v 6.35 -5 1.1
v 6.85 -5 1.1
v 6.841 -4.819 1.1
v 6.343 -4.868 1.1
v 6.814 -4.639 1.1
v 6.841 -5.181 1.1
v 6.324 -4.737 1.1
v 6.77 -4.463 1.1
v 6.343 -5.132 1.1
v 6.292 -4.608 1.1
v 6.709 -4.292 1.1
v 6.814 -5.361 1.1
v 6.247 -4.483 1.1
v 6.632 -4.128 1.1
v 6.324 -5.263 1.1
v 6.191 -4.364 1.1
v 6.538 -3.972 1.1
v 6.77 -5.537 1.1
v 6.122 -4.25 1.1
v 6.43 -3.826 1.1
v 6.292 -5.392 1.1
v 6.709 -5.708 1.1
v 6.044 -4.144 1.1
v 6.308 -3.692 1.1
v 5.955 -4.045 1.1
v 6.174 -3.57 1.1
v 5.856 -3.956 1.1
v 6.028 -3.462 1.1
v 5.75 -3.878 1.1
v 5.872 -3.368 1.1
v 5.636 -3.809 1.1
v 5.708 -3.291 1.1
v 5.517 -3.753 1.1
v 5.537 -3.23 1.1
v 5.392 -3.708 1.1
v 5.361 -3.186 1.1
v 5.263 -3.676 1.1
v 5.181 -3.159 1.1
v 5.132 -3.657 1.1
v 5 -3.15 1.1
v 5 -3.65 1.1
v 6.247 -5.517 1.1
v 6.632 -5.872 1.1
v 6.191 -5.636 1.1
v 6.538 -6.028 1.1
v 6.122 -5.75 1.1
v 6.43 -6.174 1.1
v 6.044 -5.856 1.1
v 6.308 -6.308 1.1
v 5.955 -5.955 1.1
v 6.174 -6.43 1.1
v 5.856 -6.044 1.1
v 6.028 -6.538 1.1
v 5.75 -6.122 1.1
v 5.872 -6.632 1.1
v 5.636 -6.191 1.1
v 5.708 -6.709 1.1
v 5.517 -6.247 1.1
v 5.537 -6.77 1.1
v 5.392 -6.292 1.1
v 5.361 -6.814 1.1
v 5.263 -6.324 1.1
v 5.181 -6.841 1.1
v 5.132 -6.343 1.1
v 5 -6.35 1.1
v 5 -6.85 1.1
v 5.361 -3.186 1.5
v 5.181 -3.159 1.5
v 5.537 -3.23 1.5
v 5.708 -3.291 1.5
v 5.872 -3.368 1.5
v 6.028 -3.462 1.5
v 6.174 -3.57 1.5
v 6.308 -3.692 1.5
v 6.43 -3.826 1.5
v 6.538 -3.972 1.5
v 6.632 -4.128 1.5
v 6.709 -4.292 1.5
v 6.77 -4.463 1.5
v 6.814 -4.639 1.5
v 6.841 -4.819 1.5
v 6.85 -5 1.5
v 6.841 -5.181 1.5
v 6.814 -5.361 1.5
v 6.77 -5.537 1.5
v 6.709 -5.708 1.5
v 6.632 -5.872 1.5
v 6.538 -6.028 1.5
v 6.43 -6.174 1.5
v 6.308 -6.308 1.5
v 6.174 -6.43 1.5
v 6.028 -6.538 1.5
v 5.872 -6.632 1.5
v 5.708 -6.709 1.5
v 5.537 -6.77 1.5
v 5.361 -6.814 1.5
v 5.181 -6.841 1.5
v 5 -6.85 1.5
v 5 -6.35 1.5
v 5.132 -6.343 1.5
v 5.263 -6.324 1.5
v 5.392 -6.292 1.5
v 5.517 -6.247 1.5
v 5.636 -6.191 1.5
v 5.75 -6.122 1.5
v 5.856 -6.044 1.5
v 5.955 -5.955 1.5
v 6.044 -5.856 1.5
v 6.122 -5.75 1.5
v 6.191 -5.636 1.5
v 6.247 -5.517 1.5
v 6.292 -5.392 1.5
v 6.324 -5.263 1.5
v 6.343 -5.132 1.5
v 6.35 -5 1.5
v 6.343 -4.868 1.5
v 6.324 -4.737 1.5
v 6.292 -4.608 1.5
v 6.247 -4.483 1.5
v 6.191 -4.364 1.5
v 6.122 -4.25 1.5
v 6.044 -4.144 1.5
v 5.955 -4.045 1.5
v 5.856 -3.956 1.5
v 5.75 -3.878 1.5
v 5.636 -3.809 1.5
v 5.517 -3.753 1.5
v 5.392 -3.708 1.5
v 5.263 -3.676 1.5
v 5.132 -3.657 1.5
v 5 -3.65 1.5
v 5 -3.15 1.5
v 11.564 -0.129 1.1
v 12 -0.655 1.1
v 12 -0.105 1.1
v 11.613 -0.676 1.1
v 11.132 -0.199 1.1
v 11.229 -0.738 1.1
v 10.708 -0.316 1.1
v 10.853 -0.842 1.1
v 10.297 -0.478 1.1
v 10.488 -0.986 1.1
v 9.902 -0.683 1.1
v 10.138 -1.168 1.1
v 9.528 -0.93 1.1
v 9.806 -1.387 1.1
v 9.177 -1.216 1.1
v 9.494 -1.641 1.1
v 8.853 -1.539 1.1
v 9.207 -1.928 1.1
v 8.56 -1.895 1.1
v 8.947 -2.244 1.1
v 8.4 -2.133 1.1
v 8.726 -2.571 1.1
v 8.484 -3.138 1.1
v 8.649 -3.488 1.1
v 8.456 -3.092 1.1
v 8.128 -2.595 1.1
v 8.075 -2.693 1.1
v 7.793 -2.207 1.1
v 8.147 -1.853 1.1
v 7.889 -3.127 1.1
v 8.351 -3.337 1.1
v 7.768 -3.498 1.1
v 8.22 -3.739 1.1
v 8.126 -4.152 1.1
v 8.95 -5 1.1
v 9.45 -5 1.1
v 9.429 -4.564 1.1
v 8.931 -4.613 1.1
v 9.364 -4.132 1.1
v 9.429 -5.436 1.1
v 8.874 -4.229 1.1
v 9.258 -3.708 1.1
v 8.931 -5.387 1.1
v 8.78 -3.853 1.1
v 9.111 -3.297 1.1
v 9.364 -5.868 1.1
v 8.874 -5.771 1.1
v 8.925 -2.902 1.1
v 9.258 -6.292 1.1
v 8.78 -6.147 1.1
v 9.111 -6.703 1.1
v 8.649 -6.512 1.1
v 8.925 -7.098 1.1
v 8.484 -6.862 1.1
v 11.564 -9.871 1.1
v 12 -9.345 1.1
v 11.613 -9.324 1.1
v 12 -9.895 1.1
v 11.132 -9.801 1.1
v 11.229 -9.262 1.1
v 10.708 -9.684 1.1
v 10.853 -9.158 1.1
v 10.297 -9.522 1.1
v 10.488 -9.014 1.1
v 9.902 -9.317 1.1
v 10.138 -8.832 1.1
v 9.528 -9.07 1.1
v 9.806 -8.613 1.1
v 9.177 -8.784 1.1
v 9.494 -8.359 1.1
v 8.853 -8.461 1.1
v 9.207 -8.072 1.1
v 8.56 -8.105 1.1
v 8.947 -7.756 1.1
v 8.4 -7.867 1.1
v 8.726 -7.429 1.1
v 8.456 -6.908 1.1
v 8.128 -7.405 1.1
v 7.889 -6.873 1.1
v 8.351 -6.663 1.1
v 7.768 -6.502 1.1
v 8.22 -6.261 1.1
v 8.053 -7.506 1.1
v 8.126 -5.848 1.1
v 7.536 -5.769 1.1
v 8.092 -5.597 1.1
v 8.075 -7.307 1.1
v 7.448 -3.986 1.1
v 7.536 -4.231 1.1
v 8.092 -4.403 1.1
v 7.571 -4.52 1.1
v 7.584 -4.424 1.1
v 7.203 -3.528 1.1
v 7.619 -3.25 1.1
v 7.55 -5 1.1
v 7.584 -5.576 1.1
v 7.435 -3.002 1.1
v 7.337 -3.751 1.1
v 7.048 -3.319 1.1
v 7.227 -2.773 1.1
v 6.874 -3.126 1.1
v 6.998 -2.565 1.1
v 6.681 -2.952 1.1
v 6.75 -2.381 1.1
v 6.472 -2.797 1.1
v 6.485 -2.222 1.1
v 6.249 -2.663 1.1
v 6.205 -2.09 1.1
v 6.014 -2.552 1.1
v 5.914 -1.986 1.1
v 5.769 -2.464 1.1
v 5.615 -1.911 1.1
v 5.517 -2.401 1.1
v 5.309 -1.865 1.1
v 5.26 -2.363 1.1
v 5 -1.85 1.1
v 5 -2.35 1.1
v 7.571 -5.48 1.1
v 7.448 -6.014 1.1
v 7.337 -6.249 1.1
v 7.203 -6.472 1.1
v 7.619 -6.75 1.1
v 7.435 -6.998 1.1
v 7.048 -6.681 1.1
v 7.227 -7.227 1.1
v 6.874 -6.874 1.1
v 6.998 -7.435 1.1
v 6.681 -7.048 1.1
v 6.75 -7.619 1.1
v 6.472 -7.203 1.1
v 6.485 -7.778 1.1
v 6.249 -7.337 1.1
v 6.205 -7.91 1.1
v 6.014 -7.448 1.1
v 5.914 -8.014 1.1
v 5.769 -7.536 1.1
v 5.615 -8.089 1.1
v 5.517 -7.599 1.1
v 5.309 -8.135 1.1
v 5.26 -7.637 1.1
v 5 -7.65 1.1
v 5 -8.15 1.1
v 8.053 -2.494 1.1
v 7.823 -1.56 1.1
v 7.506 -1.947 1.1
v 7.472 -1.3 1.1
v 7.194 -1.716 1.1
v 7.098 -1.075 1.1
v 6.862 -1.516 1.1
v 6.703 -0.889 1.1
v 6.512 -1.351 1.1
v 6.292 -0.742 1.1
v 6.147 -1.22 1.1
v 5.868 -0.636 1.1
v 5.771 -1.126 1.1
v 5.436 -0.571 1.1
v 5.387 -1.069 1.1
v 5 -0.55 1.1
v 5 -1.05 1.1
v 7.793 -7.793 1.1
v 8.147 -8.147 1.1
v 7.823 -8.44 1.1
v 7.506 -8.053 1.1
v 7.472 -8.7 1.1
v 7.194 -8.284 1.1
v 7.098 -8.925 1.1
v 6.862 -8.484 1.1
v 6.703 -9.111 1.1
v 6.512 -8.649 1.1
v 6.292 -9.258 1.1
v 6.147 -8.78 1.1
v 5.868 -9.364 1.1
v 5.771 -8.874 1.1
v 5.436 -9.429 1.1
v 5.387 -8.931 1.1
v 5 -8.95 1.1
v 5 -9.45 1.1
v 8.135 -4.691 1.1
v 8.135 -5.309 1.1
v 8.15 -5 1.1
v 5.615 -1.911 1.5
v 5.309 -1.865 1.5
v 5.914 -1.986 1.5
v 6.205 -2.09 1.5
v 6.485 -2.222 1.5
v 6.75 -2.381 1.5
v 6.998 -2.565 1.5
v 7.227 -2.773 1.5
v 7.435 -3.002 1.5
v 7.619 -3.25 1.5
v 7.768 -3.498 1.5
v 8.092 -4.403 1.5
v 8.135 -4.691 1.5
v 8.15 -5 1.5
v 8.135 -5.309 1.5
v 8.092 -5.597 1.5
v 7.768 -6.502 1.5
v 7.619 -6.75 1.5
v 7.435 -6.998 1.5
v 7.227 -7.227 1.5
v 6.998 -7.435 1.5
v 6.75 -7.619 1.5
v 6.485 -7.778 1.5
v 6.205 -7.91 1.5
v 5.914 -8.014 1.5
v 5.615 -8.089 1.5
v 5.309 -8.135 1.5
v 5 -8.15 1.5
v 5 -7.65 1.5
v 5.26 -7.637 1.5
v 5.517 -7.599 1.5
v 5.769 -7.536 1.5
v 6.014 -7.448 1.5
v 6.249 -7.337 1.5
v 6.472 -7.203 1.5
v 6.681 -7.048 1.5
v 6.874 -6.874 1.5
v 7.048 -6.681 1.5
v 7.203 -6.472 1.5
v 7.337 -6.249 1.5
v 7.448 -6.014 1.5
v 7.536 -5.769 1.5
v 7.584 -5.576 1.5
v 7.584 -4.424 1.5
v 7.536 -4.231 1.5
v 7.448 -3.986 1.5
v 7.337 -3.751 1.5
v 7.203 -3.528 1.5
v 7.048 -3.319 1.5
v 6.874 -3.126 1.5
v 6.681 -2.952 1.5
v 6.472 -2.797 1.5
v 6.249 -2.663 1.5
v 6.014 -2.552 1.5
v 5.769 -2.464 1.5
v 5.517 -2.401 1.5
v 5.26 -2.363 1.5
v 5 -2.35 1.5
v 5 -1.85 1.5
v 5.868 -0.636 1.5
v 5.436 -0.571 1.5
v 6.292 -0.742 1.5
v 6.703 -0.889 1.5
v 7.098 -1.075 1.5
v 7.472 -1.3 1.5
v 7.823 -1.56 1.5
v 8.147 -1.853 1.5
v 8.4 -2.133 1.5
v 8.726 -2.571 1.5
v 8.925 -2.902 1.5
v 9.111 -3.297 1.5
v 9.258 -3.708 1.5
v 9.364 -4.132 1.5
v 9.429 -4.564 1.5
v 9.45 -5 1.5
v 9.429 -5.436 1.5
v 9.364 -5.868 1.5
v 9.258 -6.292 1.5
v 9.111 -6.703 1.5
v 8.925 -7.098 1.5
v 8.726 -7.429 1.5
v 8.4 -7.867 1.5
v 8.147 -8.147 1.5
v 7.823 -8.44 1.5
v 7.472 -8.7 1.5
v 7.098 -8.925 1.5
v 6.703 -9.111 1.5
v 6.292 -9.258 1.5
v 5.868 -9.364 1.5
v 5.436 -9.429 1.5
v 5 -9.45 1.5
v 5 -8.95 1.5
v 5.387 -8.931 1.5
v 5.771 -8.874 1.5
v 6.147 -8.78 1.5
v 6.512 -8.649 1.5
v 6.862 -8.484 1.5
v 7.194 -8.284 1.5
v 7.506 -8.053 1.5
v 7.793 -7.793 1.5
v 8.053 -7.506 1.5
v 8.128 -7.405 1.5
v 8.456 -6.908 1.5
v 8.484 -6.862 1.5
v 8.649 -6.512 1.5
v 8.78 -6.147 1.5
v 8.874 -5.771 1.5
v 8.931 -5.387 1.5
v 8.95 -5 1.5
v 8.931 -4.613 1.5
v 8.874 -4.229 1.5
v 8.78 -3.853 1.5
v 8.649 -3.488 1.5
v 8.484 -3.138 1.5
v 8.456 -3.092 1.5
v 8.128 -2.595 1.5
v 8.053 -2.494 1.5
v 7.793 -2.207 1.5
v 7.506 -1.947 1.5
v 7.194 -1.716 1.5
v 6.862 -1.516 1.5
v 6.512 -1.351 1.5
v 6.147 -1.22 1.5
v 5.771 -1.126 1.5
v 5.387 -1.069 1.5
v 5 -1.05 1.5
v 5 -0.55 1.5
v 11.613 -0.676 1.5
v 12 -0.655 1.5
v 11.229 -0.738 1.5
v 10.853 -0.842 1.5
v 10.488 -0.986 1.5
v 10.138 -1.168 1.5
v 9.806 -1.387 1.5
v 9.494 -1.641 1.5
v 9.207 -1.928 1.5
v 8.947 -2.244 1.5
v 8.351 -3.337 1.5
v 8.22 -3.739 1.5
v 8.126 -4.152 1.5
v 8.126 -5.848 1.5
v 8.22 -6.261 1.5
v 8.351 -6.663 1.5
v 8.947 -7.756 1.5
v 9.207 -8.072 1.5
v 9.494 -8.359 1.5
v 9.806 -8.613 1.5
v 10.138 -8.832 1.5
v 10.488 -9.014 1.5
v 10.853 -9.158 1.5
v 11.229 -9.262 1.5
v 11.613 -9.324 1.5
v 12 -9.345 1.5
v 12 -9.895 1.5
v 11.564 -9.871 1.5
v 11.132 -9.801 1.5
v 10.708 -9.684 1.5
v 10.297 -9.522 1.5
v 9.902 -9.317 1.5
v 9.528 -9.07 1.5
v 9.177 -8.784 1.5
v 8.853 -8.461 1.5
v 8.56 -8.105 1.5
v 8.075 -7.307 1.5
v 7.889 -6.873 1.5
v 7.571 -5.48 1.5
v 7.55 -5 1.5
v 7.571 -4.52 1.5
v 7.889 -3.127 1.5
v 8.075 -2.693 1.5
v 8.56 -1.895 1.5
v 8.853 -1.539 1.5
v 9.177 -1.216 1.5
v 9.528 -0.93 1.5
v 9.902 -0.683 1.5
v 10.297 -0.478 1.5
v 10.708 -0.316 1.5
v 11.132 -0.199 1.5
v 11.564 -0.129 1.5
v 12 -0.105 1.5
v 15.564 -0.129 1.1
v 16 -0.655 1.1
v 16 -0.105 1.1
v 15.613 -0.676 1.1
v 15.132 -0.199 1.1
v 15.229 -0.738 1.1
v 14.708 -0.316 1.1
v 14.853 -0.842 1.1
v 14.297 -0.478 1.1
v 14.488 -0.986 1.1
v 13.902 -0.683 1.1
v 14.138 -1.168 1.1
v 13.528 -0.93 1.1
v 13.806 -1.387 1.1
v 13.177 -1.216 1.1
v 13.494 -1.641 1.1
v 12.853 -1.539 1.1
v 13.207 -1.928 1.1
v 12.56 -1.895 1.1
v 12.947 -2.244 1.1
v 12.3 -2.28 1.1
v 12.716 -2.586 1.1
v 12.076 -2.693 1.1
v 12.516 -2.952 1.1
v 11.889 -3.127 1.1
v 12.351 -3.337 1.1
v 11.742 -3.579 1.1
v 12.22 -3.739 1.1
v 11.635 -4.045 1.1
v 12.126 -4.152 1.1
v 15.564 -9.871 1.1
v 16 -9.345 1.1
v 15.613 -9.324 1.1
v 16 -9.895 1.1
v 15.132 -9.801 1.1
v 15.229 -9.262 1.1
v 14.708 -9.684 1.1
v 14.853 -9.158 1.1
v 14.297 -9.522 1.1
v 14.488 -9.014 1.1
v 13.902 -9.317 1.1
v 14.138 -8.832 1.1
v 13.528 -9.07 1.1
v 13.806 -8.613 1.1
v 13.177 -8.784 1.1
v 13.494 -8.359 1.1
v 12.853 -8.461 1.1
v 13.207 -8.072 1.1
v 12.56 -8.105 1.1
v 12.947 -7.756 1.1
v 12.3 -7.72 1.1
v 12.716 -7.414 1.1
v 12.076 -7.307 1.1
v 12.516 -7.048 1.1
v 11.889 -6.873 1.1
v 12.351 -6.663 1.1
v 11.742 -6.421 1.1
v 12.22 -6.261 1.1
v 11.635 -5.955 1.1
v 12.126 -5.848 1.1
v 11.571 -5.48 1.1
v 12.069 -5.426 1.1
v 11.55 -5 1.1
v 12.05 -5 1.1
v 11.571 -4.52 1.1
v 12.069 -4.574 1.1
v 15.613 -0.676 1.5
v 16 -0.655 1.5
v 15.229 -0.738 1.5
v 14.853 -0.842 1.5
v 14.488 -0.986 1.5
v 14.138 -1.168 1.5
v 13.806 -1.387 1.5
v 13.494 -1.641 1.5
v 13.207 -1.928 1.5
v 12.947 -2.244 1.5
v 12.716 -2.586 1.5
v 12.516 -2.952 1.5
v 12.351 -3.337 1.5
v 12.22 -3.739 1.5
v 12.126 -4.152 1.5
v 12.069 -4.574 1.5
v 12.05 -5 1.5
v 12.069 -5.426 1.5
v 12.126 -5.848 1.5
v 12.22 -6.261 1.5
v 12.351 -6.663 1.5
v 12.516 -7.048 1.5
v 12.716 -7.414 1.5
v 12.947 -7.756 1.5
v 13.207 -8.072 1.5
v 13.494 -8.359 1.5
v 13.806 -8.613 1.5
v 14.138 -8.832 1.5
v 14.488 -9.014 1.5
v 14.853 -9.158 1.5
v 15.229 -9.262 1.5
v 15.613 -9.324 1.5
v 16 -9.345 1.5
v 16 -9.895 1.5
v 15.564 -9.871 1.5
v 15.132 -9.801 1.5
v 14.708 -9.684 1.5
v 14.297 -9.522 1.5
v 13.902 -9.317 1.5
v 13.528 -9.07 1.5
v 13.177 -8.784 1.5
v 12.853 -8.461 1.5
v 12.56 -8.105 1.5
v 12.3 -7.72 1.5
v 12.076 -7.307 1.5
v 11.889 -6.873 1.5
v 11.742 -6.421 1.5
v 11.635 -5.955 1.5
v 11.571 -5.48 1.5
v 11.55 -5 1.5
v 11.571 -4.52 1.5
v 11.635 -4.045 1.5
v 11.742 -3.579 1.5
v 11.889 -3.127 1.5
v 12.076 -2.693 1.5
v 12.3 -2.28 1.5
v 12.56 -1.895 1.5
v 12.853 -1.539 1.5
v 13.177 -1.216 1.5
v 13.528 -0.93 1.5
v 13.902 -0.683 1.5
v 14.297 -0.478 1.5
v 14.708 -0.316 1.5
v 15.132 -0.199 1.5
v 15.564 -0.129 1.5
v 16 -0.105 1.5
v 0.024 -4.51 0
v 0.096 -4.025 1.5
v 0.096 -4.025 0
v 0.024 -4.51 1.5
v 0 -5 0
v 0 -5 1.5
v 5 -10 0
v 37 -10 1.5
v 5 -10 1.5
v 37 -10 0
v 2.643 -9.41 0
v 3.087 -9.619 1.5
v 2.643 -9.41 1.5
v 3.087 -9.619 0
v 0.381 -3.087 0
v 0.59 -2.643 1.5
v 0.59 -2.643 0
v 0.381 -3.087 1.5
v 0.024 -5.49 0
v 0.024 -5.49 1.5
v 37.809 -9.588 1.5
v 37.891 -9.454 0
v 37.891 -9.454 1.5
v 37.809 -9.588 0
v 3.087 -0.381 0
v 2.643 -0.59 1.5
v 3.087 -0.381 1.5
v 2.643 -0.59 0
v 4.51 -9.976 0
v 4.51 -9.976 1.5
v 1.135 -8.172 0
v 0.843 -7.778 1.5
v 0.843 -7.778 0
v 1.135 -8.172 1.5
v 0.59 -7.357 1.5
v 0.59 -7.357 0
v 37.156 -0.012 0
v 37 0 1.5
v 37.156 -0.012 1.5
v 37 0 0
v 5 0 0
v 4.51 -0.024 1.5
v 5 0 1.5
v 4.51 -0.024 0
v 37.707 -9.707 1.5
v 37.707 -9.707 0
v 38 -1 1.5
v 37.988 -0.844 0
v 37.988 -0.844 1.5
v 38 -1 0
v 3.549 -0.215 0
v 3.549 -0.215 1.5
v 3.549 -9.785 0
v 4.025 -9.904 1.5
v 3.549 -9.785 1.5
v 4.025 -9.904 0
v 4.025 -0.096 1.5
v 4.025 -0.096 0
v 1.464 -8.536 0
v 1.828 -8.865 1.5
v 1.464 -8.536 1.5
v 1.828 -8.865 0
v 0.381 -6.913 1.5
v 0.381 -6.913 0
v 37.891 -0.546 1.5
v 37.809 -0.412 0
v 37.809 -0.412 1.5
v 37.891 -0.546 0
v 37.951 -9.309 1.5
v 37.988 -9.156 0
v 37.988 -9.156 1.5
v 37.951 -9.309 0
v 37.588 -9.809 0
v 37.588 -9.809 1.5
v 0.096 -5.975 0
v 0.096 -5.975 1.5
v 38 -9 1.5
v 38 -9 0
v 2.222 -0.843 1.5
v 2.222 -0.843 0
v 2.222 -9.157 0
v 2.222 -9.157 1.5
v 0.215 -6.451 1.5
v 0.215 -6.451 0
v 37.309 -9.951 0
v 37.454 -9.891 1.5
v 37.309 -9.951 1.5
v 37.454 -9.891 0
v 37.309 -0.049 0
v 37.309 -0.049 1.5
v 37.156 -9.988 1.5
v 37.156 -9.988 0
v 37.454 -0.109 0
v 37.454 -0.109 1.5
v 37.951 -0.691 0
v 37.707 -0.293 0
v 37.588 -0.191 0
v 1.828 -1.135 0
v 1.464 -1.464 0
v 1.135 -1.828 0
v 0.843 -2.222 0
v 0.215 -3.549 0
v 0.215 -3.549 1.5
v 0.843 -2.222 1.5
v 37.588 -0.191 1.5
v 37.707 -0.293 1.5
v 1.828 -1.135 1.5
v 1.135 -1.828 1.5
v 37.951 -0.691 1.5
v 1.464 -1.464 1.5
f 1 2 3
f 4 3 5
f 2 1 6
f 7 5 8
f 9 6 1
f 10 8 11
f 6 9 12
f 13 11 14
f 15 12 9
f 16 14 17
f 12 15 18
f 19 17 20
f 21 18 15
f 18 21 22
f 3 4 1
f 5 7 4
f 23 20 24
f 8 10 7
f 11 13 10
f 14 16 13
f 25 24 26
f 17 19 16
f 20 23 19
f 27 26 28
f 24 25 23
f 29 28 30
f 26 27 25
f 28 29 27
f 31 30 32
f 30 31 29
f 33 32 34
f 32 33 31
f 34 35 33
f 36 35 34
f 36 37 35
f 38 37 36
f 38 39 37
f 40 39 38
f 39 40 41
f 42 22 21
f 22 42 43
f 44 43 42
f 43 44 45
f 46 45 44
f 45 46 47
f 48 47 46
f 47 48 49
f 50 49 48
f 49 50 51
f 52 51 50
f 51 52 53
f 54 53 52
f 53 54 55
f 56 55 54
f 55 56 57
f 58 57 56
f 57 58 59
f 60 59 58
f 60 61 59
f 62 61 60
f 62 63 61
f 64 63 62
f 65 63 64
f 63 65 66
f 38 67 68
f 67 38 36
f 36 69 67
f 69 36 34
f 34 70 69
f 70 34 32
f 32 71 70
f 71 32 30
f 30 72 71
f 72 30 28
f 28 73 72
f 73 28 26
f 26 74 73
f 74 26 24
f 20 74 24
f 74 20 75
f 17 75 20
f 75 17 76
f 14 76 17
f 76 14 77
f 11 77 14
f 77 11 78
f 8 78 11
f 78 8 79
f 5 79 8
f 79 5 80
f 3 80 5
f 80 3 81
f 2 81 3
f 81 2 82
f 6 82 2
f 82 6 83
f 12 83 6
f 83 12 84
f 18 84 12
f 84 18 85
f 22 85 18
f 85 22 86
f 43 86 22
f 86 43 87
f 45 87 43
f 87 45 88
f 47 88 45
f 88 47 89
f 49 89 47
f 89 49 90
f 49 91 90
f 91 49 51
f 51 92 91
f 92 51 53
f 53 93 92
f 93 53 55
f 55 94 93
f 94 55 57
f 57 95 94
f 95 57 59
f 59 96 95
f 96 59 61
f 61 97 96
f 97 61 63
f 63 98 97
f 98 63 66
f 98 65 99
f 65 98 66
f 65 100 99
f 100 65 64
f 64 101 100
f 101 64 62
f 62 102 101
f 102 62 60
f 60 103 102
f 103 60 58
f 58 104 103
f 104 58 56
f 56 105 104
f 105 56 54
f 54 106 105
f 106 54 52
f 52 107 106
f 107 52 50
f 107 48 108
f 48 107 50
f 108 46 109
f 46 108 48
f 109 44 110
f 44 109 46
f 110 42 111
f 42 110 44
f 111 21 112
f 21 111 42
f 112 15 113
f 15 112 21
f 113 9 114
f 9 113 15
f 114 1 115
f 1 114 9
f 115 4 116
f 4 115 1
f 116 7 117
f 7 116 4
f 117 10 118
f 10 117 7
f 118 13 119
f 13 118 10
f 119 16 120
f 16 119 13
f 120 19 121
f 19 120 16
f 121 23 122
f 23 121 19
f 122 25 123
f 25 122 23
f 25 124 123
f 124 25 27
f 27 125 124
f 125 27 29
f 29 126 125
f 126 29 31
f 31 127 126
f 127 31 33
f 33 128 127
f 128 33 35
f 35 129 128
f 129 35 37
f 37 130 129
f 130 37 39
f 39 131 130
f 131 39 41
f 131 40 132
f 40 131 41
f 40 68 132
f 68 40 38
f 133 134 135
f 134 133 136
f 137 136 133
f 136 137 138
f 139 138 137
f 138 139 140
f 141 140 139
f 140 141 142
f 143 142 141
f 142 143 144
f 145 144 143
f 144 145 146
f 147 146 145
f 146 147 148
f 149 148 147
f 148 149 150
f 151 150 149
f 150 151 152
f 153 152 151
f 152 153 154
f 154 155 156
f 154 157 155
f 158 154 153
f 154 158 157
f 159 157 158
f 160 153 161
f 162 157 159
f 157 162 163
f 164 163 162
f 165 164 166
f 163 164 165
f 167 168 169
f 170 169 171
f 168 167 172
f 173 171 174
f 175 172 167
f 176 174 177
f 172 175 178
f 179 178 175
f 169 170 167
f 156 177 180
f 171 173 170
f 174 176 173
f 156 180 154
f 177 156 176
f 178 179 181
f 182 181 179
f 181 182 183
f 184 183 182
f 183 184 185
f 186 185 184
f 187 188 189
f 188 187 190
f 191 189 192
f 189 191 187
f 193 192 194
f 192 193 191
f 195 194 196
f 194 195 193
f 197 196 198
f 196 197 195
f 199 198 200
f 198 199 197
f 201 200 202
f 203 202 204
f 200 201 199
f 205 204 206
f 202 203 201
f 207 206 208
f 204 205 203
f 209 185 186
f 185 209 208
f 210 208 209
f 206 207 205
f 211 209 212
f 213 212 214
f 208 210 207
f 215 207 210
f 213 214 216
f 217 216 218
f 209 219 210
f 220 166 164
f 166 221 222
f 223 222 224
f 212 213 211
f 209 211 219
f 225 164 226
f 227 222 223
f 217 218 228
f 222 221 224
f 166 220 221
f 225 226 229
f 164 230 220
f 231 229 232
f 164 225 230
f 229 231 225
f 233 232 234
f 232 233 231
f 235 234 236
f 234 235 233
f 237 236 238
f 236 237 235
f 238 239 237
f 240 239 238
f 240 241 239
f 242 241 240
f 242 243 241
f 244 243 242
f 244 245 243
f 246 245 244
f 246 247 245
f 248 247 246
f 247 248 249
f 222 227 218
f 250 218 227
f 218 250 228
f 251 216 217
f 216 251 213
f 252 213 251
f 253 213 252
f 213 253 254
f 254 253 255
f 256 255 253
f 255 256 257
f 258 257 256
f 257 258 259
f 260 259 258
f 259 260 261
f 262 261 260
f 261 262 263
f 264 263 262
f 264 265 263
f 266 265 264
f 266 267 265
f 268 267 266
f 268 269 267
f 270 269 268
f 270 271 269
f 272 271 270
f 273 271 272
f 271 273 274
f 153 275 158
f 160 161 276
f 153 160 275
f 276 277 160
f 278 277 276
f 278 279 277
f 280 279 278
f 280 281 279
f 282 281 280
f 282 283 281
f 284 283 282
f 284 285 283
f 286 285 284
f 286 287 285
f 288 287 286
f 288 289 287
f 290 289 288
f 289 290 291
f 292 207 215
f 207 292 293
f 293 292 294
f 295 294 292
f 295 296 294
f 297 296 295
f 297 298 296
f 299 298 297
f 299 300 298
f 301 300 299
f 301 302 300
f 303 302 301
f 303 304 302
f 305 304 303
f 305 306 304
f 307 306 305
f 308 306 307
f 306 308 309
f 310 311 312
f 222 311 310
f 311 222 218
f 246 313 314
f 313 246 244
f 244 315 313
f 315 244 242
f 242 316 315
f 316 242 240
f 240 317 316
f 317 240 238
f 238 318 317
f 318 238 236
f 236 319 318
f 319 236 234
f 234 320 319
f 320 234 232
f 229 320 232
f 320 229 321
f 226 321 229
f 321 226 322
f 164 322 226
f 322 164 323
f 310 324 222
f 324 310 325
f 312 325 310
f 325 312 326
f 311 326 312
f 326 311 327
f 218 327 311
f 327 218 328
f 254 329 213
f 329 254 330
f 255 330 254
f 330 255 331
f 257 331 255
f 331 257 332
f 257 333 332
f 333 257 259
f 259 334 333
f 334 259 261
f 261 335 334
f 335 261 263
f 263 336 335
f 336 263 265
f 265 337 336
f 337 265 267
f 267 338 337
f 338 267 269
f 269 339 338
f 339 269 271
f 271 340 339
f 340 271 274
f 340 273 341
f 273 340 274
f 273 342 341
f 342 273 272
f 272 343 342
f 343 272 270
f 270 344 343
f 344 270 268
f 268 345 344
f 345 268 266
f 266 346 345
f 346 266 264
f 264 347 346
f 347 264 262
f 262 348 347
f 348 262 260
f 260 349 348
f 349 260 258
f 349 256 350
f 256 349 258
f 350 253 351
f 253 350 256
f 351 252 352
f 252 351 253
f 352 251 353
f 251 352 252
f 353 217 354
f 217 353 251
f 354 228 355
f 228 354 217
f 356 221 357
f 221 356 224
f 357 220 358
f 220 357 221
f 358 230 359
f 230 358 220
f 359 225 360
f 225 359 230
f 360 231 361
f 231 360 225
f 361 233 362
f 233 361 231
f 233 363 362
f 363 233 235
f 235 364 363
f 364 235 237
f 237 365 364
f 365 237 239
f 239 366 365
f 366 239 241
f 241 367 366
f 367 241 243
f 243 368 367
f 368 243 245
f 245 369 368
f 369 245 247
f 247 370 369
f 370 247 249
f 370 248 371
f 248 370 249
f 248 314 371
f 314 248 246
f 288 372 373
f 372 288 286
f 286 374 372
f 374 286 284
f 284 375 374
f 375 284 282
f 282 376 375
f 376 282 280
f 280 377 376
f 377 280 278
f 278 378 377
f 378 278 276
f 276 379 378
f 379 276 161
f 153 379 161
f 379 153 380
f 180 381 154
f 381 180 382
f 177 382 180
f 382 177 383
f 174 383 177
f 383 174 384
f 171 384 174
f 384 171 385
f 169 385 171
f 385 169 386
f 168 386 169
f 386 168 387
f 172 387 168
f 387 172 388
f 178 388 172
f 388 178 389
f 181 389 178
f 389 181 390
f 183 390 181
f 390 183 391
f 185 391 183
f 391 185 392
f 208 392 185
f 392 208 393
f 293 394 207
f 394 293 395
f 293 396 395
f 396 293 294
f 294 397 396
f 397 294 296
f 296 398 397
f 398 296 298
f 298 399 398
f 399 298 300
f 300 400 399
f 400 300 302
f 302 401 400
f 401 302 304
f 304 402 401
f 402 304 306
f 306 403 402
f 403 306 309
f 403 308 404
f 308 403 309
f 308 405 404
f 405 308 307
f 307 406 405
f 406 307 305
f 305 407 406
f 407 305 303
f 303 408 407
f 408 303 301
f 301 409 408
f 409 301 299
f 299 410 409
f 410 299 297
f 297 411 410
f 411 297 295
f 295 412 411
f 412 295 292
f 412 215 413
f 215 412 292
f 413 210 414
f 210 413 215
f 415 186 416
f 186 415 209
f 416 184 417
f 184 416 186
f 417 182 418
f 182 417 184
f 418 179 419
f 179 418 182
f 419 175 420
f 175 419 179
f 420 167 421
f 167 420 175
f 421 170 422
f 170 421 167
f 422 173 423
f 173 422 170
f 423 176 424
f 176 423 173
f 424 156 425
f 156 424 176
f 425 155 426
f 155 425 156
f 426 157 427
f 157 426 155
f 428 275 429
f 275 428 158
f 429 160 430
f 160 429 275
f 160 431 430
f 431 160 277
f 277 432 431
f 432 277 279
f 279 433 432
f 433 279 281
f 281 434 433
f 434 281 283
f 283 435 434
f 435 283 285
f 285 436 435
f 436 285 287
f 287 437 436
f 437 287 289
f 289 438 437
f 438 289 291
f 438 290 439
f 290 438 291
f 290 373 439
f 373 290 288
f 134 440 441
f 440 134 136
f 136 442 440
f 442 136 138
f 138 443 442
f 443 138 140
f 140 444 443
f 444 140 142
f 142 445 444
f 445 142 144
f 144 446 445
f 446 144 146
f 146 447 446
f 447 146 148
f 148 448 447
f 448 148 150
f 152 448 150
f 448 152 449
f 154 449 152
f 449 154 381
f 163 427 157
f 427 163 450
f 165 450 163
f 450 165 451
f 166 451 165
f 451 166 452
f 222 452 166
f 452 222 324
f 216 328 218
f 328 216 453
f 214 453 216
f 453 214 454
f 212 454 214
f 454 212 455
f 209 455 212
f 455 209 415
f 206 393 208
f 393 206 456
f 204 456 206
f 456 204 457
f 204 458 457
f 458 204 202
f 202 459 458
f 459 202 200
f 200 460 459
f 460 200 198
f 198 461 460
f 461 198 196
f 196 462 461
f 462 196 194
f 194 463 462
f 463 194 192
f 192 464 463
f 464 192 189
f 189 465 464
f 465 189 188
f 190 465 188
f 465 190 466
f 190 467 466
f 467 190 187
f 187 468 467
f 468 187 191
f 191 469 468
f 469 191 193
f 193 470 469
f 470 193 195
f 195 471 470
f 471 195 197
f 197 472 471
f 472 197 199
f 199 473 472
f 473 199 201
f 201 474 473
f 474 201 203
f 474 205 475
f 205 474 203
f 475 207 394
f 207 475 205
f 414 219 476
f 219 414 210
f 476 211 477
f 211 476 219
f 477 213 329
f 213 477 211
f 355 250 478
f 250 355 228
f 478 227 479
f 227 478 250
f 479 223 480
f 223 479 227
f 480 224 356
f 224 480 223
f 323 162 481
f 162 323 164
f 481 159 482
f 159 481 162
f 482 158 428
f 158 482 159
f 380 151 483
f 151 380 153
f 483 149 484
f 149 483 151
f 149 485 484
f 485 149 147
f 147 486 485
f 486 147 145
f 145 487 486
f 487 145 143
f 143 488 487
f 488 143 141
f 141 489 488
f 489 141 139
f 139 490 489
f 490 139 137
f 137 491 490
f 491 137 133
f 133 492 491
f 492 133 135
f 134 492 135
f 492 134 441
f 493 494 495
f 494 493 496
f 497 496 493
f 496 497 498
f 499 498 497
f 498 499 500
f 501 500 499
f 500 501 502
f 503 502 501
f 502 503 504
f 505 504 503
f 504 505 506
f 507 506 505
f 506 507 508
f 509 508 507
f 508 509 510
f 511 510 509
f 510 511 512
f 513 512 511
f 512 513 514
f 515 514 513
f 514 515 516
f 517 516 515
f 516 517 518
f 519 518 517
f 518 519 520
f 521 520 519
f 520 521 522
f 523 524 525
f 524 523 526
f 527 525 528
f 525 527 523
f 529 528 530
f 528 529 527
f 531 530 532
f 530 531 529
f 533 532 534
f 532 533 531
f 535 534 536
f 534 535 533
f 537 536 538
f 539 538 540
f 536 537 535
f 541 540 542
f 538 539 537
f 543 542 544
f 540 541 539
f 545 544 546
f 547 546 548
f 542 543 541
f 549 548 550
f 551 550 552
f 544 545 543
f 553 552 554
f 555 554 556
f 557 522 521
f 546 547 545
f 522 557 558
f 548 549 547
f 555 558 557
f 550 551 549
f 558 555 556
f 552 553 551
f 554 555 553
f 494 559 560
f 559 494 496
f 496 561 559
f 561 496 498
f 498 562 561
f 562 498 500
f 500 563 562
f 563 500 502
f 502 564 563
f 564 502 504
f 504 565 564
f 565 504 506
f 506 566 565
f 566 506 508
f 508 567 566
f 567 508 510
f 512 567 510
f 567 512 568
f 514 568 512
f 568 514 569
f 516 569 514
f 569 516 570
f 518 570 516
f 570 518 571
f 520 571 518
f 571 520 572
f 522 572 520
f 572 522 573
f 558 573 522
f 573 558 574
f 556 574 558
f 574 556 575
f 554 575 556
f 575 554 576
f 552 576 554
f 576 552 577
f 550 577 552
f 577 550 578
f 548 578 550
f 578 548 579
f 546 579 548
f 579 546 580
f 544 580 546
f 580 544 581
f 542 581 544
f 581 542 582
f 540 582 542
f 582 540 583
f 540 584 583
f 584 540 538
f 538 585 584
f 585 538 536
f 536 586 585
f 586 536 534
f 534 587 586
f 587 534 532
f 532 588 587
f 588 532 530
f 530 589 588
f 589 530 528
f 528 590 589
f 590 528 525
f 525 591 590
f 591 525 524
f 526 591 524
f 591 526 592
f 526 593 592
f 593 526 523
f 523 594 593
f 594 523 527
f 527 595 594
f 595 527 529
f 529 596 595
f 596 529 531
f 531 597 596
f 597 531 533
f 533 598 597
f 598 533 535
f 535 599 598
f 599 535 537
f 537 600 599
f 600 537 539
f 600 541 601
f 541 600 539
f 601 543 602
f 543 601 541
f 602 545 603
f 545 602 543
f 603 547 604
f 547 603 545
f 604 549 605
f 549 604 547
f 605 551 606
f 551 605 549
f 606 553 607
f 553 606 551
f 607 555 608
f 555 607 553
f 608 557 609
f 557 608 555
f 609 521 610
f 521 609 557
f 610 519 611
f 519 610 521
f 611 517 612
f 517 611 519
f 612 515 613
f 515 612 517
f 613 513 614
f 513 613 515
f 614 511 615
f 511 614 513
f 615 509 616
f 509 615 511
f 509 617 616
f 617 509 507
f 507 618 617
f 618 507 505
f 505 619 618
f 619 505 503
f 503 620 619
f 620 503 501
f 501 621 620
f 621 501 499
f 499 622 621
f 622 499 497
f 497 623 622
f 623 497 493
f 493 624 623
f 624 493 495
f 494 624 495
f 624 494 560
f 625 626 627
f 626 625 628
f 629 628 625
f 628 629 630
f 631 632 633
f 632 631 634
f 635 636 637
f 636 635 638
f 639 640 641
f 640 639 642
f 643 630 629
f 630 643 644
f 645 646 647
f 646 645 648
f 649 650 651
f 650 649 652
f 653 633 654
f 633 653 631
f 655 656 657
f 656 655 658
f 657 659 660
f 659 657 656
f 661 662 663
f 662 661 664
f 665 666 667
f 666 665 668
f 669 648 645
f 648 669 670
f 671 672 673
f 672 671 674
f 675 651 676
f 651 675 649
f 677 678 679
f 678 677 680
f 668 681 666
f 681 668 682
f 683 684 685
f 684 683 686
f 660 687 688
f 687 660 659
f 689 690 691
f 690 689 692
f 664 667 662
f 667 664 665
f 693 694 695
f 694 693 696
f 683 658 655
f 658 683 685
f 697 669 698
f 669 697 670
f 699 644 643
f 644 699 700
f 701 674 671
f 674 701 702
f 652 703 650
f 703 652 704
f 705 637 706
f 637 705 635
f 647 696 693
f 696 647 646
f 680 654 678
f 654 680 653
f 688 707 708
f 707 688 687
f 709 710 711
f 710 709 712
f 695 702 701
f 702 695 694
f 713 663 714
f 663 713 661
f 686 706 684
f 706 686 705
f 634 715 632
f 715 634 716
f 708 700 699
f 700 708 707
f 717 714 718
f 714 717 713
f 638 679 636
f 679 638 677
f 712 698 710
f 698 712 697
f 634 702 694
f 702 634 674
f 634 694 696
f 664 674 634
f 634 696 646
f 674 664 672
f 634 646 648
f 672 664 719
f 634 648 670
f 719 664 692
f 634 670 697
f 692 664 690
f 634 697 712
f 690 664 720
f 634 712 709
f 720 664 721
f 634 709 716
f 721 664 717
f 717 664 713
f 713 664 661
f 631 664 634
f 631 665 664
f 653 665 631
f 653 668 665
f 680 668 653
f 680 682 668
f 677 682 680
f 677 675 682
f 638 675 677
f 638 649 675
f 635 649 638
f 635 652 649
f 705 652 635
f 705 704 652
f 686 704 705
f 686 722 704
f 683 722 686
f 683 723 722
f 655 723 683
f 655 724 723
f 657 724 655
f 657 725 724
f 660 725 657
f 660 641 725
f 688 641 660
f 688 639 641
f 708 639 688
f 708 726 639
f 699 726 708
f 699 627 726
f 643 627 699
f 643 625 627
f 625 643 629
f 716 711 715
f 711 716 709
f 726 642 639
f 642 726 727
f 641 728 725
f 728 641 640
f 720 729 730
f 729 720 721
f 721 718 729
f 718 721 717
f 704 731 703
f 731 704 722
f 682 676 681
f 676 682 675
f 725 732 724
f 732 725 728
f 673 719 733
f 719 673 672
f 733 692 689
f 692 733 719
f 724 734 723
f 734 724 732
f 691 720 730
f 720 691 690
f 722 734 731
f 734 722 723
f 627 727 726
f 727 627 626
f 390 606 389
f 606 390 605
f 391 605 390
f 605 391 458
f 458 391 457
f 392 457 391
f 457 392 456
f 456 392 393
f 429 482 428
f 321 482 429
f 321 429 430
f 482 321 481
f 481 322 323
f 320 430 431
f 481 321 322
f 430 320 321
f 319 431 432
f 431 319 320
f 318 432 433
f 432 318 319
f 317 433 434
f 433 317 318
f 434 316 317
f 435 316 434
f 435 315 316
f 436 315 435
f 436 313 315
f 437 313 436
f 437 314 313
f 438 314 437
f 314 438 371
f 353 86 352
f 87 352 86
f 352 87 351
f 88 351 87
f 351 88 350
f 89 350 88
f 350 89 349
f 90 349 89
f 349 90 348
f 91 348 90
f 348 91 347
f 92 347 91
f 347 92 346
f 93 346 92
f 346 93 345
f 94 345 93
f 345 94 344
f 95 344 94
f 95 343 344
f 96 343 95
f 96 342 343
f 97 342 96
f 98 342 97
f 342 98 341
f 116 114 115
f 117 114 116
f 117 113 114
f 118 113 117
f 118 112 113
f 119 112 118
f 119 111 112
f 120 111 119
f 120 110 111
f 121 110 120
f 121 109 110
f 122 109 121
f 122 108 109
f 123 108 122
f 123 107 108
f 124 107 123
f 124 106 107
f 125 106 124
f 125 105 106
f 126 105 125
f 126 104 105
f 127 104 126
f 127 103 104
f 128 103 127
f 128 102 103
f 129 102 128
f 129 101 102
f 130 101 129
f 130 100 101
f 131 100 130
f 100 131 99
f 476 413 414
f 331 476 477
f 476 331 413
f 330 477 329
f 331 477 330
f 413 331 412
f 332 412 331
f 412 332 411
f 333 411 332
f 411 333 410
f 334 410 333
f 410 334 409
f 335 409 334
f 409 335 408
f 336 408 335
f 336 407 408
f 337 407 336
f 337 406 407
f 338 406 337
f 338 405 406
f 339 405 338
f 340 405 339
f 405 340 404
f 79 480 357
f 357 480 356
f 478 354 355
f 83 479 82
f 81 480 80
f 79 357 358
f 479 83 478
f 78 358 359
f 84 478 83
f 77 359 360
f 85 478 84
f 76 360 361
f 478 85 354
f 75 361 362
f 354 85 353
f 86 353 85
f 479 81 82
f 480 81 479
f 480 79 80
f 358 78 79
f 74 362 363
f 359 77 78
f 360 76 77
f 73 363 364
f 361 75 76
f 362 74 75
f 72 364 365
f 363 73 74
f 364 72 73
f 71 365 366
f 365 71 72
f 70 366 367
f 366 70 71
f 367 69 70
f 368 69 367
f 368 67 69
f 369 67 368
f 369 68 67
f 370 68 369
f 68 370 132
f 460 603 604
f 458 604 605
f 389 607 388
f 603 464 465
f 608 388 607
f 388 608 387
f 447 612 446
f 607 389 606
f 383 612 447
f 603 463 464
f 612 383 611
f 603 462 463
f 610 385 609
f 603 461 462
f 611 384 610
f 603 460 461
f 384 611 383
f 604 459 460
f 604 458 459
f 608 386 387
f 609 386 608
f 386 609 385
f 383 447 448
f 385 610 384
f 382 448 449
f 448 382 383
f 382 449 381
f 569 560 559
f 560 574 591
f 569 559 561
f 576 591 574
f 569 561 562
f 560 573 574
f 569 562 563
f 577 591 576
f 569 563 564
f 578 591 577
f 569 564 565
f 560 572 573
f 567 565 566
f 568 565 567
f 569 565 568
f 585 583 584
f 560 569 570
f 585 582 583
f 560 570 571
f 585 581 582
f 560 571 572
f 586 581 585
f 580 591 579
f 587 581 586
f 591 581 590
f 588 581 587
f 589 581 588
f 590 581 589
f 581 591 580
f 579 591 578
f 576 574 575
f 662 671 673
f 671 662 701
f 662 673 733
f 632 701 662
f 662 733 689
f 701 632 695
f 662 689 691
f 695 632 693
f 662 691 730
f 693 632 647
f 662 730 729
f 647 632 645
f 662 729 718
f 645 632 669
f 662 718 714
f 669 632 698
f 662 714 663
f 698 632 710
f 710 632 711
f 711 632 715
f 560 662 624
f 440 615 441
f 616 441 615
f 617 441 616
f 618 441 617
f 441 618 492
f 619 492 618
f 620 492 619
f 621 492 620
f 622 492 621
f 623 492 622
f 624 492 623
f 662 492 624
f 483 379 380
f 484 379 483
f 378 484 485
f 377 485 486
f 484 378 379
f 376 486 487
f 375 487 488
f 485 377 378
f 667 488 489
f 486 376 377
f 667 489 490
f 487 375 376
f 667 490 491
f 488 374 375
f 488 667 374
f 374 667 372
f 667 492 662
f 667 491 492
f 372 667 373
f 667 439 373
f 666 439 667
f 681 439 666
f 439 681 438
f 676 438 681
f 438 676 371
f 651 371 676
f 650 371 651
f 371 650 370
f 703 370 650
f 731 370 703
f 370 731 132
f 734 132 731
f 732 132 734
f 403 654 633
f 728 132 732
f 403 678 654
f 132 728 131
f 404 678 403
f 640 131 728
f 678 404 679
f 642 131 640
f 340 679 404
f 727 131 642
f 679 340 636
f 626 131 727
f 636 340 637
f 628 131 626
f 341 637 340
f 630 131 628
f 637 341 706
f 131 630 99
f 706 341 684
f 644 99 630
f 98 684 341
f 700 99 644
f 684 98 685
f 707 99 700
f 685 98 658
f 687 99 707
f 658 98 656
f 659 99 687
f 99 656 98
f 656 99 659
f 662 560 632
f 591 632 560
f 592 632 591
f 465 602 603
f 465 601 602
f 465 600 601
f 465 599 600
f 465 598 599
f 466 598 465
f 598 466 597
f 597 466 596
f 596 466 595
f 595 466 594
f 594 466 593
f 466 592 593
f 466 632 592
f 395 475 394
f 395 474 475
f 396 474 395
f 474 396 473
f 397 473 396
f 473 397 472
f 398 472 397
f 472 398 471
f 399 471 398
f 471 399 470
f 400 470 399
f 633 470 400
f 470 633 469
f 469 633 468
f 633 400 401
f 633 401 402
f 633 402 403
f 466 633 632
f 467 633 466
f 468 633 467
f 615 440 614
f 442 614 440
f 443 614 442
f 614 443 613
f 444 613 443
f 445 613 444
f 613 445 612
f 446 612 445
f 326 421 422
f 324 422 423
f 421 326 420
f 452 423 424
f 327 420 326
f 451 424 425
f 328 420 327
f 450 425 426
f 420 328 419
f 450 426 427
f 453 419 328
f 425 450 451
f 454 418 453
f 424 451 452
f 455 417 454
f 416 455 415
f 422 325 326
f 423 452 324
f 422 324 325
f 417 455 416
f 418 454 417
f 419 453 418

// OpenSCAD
// Serving_Tray.stl  -  Store Versile room frame (Rev C)
// Quantity: 1   Filament: Light wood (e.g. PLA Matte Latte Brown or PLA-Wood)
// Print: layer 0.12 mm, infill 100%, 2 walls, brim 0 mm, NO supports
// Orientation: flat  (as installed)
// Notes: Ripple grooves up.
// The library draws parts with their front toward +Y; mirror([0,1,0]) makes the real
// part face the viewer correctly (see build.py). Edit dimensions in versile_parts.scad.
use <../versile_parts.scad>

mirror([0, 1, 0]) serving_tray();
